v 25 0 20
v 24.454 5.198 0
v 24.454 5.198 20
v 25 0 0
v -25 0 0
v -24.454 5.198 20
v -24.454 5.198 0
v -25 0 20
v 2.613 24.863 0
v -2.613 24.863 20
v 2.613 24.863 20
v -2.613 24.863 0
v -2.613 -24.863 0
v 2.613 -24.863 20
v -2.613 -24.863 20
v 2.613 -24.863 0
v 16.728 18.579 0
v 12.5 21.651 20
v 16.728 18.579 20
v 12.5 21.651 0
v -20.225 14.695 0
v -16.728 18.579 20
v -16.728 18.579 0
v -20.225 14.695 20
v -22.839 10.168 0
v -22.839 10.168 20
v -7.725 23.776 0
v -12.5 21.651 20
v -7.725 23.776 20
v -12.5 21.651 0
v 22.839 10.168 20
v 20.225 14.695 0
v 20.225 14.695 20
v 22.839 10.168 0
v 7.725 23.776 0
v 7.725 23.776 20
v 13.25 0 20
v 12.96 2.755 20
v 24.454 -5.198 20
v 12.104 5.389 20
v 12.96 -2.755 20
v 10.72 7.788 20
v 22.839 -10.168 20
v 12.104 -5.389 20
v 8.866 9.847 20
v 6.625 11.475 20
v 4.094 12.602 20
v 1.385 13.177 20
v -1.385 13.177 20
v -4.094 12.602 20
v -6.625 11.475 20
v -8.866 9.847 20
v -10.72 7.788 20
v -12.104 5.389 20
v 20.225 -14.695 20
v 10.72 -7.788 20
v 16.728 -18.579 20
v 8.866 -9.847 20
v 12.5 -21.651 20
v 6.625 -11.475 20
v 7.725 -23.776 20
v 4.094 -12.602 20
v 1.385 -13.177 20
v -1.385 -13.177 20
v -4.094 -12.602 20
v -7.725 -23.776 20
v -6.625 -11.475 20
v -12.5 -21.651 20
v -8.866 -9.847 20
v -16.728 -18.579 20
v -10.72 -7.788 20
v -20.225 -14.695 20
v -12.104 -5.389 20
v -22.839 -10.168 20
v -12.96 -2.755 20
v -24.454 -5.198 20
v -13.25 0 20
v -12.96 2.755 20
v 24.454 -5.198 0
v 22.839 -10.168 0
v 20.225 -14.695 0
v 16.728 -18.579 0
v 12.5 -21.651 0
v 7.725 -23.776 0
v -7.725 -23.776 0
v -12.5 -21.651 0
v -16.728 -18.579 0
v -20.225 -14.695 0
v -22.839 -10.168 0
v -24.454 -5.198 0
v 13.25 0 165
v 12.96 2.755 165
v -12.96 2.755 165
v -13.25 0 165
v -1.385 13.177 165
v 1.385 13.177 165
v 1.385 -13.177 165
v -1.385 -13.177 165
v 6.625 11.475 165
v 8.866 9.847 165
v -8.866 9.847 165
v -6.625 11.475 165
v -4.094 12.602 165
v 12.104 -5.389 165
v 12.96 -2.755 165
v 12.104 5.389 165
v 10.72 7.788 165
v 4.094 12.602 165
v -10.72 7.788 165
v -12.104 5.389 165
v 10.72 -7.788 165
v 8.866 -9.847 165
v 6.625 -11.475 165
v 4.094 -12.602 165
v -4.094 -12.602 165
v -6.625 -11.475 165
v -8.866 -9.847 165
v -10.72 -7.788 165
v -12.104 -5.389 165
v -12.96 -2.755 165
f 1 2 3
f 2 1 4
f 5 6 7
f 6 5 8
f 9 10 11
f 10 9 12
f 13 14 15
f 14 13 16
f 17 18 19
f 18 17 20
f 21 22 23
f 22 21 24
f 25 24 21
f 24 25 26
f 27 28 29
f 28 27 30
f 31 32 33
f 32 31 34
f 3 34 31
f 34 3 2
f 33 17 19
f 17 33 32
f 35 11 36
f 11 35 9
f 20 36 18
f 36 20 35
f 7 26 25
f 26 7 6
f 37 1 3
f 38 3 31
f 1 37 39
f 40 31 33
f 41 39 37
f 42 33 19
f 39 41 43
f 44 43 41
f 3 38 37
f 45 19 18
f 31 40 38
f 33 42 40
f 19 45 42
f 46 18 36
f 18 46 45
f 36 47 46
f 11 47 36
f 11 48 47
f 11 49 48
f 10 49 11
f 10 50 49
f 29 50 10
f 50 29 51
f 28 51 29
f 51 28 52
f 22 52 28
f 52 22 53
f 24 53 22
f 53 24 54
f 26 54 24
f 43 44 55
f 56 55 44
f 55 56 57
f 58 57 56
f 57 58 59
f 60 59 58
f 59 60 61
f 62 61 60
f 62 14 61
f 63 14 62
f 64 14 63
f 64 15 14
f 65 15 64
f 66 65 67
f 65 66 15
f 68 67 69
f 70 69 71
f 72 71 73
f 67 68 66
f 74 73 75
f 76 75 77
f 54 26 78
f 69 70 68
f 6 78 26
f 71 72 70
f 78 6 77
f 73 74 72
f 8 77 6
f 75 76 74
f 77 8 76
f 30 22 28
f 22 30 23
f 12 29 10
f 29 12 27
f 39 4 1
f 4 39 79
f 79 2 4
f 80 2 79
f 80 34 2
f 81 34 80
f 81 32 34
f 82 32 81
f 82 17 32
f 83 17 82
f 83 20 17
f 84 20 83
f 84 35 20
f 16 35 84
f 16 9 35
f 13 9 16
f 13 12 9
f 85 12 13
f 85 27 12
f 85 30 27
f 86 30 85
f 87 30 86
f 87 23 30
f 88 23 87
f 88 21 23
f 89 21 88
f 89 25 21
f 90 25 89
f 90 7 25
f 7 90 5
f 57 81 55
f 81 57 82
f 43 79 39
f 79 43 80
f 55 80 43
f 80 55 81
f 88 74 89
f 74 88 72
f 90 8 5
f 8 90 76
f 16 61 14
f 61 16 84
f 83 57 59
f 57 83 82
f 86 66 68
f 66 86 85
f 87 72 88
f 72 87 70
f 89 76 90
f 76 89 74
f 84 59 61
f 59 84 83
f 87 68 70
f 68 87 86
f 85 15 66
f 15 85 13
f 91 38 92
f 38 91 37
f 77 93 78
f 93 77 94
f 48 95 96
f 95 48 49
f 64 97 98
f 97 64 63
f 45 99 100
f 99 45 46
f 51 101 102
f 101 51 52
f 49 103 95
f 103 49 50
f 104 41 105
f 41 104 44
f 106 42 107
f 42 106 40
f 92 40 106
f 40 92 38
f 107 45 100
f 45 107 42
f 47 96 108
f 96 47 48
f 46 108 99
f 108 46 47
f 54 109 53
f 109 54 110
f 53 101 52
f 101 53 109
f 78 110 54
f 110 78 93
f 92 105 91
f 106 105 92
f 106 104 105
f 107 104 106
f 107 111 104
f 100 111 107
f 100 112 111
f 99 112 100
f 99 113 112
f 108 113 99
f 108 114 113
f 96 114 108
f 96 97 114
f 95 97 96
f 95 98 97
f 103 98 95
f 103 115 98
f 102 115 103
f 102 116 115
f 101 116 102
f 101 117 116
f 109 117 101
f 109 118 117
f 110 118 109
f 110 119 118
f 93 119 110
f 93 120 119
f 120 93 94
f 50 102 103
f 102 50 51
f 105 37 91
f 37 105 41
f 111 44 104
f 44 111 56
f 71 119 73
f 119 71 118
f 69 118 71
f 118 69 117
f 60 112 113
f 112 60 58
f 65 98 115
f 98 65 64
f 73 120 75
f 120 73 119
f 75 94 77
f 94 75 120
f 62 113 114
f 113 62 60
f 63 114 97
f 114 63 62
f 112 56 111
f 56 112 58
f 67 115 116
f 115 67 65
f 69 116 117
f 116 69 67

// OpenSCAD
// file: nutsnbolts/data-access.scad
// Norm Nuts and Bolts - a OpenSCAD library
// Copyright (C) 2012  Johannes Kneer

// This program is free software: you can redistribute it and/or modify
// it under the terms of the GNU General Public License as published by
// the Free Software Foundation, either version 3 of the License, or
// (at your option) any later version.

// This program is distributed in the hope that it will be useful,
// but WITHOUT ANY WARRANTY; without even the implied warranty of
// MERCHANTABILITY or FITNESS FOR A PARTICULAR PURPOSE.  See the
// GNU General Public License for more details.

// You should have received a copy of the GNU General Public License
// along with this program.  If not, see <http://www.gnu.org/licenses/>.


// DATABASE ACCESS FUNCTIONS AND CONSTANTS



// == CONSTANTS ==

// screw table access keys
_NB_S_DESC            = 0;
_NB_S_FAMKEY			    = 1;
_NB_S_LENGTH          = 2;
_NB_S_NOTHREAD_LENGTH = 3;

_NB_F_DESC			      = 0;
_NB_F_OUTER_DIA       = 1;
_NB_F_INNER_DIA       = 2;
_NB_F_LEAD            = 3;
_NB_F_KEY             = 4;
_NB_F_KEY_DEPTH       = 5;
_NB_F_HEAD_HEIGHT     = 6;
_NB_F_HEAD_DIA        = 7;
_NB_F_NUT_KEY         = 8;
_NB_F_NUT_HEIGHT      = 9;
_NB_F_PITCH_FINE      = 10;
_NB_F_PITCH_MEDIUM    = 11;
_NB_F_PITCH_COARSE    = 12;


// == FUNCTIONS ==

// _get_screw("descriptor")   with descriptor = M8x25
//   find the line for a general object in the data matrix

function _get_screw(n) = data_screw[search([n], data_screw)[0]];
function _get_screw_fam(n) = data_screw_fam[search([_get_screw(n)[_NB_S_FAMKEY]], data_screw_fam)[0]];

function _get_fam(n) = data_screw_fam[search([n], data_screw_fam)[0]];


// _get_XXXXX("descriptor") functions
// find a single property in the database

function _get_desc(n)        = _get_screw(n)[_NB_S_DESC];
function _get_famkey(n)         = _get_screw(n)[_NB_S_FAMKEY];
function _get_length(n)      = _get_screw(n)[_NB_S_LENGTH];
function _get_nt_length(n)   = _get_screw(n)[_NB_S_NOTHREAD_LENGTH];

function _get_outer_dia(n)   = _get_screw_fam(n)[_NB_F_OUTER_DIA];
function _get_inner_dia(n)   = _get_screw_fam(n)[_NB_F_INNER_DIA];
function _get_lead(n)        = _get_screw_fam(n)[_NB_F_LEAD];
function _get_head_height(n) = _get_screw_fam(n)[_NB_F_HEAD_HEIGHT];
function _get_head_dia(n)    = _get_screw_fam(n)[_NB_F_HEAD_DIA];
function _get_nut_key(n)     = _get_screw_fam(n)[_NB_F_NUT_KEY];
function _get_nut_height(n)  = _get_screw_fam(n)[_NB_F_NUT_HEIGHT];
function _get_fine_pitch(n)  = _get_screw_fam(n)[_NB_F_PITCH_FINE];
function _get_medium_pitch(n)  = _get_screw_fam(n)[_NB_F_PITCH_MEDIUM];
function _get_coarse_pitch(n)  = _get_screw_fam(n)[_NB_F_PITCH_COARSE];
// main file
include <nutsnbolts/cyl_head_bolt.scad>

cylinder(h = 20, r = 25);
cylinder(h = 165, r = 26.5/2);
